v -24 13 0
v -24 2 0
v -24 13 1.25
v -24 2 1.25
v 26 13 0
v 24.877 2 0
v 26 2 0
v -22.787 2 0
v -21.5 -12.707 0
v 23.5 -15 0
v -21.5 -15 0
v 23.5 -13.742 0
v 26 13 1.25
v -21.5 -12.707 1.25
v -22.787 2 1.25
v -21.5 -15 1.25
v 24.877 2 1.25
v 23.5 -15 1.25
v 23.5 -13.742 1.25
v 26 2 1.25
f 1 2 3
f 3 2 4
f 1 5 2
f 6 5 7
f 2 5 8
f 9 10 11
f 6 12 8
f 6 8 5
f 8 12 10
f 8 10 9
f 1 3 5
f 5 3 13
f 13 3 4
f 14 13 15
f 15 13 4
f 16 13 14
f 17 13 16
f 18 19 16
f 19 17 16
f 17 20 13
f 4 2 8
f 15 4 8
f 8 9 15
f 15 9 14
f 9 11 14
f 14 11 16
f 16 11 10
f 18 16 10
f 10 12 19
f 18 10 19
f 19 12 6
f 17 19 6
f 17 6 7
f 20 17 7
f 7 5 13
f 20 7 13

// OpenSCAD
width = 1.25;

t_length = 45;
t_height = 28;
top = [t_length, width, t_height];

b_length = 50;
b_height = 11; 
bottom = [b_length, width, b_height];

rotate([90, 0, 0]) {
	translate([1 - (b_length / 2), 0, 1 - (t_height / 2)]) {
		union() {
			cube(bottom);
			translate([2.5, 0, 0]) cube(top);

		    rotate([0, -5, 0]) translate([29.65, 0, 6.25]) cube([20, width, 17.5]);
			rotate([0, 5, 0]) translate([.25, 0, 11]) cube([20, width, 17]);
		}
	}
}
